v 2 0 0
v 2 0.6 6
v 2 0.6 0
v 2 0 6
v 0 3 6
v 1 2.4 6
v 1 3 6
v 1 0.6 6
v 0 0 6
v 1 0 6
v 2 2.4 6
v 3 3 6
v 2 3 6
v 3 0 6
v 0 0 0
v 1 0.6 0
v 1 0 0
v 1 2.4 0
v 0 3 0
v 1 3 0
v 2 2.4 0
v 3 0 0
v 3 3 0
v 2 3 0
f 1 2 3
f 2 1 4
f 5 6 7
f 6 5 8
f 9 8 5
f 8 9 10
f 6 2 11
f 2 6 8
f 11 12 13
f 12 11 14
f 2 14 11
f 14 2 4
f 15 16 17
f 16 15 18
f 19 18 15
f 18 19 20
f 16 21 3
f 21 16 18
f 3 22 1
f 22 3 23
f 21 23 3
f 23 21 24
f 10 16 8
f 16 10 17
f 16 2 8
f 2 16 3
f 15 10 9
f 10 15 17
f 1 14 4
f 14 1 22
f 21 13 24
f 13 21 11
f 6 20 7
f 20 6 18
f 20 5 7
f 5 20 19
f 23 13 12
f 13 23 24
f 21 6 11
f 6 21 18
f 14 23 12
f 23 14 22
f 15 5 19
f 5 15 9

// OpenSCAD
// file: ../../../share/openscad/eurorack-led-holder.scad
/*
 * SPDX-FileCopyrightText: 2021-2022 Rafael G. Martins <rafael@rafaelmartins.eng.br>
 * SPDX-License-Identifier: CERN-OHL-S-2.0
 */

module eurorack_led_holder(num_leds, leds_spacing=0) {
    margin = 1;
    width = 3;
    height = 6;
    led_width = 1.8;
    led_length = 1;
    length = (num_leds - 1) * leds_spacing + 2 * margin + led_length;

    difference() {
        cube([length, width, height]);
        for (i = [0 : num_leds - 1]) {
            translate([margin + i * leds_spacing, 0, 0]) {
                cube([led_length, (width - led_width) / 2, height]);
                translate([0, width - ((width - led_width) / 2), 0])
                    cube([led_length, (width - led_width) / 2, height]);
            }
        }
    }
}
// main file
/*
 * SPDX-FileCopyrightText: 2021-2022 Rafael G. Martins <rafael@rafaelmartins.eng.br>
 * SPDX-License-Identifier: CERN-OHL-S-2.0
 */

include <../../../share/openscad/eurorack-led-holder.scad>

num_leds = 1;

eurorack_led_holder(num_leds);
